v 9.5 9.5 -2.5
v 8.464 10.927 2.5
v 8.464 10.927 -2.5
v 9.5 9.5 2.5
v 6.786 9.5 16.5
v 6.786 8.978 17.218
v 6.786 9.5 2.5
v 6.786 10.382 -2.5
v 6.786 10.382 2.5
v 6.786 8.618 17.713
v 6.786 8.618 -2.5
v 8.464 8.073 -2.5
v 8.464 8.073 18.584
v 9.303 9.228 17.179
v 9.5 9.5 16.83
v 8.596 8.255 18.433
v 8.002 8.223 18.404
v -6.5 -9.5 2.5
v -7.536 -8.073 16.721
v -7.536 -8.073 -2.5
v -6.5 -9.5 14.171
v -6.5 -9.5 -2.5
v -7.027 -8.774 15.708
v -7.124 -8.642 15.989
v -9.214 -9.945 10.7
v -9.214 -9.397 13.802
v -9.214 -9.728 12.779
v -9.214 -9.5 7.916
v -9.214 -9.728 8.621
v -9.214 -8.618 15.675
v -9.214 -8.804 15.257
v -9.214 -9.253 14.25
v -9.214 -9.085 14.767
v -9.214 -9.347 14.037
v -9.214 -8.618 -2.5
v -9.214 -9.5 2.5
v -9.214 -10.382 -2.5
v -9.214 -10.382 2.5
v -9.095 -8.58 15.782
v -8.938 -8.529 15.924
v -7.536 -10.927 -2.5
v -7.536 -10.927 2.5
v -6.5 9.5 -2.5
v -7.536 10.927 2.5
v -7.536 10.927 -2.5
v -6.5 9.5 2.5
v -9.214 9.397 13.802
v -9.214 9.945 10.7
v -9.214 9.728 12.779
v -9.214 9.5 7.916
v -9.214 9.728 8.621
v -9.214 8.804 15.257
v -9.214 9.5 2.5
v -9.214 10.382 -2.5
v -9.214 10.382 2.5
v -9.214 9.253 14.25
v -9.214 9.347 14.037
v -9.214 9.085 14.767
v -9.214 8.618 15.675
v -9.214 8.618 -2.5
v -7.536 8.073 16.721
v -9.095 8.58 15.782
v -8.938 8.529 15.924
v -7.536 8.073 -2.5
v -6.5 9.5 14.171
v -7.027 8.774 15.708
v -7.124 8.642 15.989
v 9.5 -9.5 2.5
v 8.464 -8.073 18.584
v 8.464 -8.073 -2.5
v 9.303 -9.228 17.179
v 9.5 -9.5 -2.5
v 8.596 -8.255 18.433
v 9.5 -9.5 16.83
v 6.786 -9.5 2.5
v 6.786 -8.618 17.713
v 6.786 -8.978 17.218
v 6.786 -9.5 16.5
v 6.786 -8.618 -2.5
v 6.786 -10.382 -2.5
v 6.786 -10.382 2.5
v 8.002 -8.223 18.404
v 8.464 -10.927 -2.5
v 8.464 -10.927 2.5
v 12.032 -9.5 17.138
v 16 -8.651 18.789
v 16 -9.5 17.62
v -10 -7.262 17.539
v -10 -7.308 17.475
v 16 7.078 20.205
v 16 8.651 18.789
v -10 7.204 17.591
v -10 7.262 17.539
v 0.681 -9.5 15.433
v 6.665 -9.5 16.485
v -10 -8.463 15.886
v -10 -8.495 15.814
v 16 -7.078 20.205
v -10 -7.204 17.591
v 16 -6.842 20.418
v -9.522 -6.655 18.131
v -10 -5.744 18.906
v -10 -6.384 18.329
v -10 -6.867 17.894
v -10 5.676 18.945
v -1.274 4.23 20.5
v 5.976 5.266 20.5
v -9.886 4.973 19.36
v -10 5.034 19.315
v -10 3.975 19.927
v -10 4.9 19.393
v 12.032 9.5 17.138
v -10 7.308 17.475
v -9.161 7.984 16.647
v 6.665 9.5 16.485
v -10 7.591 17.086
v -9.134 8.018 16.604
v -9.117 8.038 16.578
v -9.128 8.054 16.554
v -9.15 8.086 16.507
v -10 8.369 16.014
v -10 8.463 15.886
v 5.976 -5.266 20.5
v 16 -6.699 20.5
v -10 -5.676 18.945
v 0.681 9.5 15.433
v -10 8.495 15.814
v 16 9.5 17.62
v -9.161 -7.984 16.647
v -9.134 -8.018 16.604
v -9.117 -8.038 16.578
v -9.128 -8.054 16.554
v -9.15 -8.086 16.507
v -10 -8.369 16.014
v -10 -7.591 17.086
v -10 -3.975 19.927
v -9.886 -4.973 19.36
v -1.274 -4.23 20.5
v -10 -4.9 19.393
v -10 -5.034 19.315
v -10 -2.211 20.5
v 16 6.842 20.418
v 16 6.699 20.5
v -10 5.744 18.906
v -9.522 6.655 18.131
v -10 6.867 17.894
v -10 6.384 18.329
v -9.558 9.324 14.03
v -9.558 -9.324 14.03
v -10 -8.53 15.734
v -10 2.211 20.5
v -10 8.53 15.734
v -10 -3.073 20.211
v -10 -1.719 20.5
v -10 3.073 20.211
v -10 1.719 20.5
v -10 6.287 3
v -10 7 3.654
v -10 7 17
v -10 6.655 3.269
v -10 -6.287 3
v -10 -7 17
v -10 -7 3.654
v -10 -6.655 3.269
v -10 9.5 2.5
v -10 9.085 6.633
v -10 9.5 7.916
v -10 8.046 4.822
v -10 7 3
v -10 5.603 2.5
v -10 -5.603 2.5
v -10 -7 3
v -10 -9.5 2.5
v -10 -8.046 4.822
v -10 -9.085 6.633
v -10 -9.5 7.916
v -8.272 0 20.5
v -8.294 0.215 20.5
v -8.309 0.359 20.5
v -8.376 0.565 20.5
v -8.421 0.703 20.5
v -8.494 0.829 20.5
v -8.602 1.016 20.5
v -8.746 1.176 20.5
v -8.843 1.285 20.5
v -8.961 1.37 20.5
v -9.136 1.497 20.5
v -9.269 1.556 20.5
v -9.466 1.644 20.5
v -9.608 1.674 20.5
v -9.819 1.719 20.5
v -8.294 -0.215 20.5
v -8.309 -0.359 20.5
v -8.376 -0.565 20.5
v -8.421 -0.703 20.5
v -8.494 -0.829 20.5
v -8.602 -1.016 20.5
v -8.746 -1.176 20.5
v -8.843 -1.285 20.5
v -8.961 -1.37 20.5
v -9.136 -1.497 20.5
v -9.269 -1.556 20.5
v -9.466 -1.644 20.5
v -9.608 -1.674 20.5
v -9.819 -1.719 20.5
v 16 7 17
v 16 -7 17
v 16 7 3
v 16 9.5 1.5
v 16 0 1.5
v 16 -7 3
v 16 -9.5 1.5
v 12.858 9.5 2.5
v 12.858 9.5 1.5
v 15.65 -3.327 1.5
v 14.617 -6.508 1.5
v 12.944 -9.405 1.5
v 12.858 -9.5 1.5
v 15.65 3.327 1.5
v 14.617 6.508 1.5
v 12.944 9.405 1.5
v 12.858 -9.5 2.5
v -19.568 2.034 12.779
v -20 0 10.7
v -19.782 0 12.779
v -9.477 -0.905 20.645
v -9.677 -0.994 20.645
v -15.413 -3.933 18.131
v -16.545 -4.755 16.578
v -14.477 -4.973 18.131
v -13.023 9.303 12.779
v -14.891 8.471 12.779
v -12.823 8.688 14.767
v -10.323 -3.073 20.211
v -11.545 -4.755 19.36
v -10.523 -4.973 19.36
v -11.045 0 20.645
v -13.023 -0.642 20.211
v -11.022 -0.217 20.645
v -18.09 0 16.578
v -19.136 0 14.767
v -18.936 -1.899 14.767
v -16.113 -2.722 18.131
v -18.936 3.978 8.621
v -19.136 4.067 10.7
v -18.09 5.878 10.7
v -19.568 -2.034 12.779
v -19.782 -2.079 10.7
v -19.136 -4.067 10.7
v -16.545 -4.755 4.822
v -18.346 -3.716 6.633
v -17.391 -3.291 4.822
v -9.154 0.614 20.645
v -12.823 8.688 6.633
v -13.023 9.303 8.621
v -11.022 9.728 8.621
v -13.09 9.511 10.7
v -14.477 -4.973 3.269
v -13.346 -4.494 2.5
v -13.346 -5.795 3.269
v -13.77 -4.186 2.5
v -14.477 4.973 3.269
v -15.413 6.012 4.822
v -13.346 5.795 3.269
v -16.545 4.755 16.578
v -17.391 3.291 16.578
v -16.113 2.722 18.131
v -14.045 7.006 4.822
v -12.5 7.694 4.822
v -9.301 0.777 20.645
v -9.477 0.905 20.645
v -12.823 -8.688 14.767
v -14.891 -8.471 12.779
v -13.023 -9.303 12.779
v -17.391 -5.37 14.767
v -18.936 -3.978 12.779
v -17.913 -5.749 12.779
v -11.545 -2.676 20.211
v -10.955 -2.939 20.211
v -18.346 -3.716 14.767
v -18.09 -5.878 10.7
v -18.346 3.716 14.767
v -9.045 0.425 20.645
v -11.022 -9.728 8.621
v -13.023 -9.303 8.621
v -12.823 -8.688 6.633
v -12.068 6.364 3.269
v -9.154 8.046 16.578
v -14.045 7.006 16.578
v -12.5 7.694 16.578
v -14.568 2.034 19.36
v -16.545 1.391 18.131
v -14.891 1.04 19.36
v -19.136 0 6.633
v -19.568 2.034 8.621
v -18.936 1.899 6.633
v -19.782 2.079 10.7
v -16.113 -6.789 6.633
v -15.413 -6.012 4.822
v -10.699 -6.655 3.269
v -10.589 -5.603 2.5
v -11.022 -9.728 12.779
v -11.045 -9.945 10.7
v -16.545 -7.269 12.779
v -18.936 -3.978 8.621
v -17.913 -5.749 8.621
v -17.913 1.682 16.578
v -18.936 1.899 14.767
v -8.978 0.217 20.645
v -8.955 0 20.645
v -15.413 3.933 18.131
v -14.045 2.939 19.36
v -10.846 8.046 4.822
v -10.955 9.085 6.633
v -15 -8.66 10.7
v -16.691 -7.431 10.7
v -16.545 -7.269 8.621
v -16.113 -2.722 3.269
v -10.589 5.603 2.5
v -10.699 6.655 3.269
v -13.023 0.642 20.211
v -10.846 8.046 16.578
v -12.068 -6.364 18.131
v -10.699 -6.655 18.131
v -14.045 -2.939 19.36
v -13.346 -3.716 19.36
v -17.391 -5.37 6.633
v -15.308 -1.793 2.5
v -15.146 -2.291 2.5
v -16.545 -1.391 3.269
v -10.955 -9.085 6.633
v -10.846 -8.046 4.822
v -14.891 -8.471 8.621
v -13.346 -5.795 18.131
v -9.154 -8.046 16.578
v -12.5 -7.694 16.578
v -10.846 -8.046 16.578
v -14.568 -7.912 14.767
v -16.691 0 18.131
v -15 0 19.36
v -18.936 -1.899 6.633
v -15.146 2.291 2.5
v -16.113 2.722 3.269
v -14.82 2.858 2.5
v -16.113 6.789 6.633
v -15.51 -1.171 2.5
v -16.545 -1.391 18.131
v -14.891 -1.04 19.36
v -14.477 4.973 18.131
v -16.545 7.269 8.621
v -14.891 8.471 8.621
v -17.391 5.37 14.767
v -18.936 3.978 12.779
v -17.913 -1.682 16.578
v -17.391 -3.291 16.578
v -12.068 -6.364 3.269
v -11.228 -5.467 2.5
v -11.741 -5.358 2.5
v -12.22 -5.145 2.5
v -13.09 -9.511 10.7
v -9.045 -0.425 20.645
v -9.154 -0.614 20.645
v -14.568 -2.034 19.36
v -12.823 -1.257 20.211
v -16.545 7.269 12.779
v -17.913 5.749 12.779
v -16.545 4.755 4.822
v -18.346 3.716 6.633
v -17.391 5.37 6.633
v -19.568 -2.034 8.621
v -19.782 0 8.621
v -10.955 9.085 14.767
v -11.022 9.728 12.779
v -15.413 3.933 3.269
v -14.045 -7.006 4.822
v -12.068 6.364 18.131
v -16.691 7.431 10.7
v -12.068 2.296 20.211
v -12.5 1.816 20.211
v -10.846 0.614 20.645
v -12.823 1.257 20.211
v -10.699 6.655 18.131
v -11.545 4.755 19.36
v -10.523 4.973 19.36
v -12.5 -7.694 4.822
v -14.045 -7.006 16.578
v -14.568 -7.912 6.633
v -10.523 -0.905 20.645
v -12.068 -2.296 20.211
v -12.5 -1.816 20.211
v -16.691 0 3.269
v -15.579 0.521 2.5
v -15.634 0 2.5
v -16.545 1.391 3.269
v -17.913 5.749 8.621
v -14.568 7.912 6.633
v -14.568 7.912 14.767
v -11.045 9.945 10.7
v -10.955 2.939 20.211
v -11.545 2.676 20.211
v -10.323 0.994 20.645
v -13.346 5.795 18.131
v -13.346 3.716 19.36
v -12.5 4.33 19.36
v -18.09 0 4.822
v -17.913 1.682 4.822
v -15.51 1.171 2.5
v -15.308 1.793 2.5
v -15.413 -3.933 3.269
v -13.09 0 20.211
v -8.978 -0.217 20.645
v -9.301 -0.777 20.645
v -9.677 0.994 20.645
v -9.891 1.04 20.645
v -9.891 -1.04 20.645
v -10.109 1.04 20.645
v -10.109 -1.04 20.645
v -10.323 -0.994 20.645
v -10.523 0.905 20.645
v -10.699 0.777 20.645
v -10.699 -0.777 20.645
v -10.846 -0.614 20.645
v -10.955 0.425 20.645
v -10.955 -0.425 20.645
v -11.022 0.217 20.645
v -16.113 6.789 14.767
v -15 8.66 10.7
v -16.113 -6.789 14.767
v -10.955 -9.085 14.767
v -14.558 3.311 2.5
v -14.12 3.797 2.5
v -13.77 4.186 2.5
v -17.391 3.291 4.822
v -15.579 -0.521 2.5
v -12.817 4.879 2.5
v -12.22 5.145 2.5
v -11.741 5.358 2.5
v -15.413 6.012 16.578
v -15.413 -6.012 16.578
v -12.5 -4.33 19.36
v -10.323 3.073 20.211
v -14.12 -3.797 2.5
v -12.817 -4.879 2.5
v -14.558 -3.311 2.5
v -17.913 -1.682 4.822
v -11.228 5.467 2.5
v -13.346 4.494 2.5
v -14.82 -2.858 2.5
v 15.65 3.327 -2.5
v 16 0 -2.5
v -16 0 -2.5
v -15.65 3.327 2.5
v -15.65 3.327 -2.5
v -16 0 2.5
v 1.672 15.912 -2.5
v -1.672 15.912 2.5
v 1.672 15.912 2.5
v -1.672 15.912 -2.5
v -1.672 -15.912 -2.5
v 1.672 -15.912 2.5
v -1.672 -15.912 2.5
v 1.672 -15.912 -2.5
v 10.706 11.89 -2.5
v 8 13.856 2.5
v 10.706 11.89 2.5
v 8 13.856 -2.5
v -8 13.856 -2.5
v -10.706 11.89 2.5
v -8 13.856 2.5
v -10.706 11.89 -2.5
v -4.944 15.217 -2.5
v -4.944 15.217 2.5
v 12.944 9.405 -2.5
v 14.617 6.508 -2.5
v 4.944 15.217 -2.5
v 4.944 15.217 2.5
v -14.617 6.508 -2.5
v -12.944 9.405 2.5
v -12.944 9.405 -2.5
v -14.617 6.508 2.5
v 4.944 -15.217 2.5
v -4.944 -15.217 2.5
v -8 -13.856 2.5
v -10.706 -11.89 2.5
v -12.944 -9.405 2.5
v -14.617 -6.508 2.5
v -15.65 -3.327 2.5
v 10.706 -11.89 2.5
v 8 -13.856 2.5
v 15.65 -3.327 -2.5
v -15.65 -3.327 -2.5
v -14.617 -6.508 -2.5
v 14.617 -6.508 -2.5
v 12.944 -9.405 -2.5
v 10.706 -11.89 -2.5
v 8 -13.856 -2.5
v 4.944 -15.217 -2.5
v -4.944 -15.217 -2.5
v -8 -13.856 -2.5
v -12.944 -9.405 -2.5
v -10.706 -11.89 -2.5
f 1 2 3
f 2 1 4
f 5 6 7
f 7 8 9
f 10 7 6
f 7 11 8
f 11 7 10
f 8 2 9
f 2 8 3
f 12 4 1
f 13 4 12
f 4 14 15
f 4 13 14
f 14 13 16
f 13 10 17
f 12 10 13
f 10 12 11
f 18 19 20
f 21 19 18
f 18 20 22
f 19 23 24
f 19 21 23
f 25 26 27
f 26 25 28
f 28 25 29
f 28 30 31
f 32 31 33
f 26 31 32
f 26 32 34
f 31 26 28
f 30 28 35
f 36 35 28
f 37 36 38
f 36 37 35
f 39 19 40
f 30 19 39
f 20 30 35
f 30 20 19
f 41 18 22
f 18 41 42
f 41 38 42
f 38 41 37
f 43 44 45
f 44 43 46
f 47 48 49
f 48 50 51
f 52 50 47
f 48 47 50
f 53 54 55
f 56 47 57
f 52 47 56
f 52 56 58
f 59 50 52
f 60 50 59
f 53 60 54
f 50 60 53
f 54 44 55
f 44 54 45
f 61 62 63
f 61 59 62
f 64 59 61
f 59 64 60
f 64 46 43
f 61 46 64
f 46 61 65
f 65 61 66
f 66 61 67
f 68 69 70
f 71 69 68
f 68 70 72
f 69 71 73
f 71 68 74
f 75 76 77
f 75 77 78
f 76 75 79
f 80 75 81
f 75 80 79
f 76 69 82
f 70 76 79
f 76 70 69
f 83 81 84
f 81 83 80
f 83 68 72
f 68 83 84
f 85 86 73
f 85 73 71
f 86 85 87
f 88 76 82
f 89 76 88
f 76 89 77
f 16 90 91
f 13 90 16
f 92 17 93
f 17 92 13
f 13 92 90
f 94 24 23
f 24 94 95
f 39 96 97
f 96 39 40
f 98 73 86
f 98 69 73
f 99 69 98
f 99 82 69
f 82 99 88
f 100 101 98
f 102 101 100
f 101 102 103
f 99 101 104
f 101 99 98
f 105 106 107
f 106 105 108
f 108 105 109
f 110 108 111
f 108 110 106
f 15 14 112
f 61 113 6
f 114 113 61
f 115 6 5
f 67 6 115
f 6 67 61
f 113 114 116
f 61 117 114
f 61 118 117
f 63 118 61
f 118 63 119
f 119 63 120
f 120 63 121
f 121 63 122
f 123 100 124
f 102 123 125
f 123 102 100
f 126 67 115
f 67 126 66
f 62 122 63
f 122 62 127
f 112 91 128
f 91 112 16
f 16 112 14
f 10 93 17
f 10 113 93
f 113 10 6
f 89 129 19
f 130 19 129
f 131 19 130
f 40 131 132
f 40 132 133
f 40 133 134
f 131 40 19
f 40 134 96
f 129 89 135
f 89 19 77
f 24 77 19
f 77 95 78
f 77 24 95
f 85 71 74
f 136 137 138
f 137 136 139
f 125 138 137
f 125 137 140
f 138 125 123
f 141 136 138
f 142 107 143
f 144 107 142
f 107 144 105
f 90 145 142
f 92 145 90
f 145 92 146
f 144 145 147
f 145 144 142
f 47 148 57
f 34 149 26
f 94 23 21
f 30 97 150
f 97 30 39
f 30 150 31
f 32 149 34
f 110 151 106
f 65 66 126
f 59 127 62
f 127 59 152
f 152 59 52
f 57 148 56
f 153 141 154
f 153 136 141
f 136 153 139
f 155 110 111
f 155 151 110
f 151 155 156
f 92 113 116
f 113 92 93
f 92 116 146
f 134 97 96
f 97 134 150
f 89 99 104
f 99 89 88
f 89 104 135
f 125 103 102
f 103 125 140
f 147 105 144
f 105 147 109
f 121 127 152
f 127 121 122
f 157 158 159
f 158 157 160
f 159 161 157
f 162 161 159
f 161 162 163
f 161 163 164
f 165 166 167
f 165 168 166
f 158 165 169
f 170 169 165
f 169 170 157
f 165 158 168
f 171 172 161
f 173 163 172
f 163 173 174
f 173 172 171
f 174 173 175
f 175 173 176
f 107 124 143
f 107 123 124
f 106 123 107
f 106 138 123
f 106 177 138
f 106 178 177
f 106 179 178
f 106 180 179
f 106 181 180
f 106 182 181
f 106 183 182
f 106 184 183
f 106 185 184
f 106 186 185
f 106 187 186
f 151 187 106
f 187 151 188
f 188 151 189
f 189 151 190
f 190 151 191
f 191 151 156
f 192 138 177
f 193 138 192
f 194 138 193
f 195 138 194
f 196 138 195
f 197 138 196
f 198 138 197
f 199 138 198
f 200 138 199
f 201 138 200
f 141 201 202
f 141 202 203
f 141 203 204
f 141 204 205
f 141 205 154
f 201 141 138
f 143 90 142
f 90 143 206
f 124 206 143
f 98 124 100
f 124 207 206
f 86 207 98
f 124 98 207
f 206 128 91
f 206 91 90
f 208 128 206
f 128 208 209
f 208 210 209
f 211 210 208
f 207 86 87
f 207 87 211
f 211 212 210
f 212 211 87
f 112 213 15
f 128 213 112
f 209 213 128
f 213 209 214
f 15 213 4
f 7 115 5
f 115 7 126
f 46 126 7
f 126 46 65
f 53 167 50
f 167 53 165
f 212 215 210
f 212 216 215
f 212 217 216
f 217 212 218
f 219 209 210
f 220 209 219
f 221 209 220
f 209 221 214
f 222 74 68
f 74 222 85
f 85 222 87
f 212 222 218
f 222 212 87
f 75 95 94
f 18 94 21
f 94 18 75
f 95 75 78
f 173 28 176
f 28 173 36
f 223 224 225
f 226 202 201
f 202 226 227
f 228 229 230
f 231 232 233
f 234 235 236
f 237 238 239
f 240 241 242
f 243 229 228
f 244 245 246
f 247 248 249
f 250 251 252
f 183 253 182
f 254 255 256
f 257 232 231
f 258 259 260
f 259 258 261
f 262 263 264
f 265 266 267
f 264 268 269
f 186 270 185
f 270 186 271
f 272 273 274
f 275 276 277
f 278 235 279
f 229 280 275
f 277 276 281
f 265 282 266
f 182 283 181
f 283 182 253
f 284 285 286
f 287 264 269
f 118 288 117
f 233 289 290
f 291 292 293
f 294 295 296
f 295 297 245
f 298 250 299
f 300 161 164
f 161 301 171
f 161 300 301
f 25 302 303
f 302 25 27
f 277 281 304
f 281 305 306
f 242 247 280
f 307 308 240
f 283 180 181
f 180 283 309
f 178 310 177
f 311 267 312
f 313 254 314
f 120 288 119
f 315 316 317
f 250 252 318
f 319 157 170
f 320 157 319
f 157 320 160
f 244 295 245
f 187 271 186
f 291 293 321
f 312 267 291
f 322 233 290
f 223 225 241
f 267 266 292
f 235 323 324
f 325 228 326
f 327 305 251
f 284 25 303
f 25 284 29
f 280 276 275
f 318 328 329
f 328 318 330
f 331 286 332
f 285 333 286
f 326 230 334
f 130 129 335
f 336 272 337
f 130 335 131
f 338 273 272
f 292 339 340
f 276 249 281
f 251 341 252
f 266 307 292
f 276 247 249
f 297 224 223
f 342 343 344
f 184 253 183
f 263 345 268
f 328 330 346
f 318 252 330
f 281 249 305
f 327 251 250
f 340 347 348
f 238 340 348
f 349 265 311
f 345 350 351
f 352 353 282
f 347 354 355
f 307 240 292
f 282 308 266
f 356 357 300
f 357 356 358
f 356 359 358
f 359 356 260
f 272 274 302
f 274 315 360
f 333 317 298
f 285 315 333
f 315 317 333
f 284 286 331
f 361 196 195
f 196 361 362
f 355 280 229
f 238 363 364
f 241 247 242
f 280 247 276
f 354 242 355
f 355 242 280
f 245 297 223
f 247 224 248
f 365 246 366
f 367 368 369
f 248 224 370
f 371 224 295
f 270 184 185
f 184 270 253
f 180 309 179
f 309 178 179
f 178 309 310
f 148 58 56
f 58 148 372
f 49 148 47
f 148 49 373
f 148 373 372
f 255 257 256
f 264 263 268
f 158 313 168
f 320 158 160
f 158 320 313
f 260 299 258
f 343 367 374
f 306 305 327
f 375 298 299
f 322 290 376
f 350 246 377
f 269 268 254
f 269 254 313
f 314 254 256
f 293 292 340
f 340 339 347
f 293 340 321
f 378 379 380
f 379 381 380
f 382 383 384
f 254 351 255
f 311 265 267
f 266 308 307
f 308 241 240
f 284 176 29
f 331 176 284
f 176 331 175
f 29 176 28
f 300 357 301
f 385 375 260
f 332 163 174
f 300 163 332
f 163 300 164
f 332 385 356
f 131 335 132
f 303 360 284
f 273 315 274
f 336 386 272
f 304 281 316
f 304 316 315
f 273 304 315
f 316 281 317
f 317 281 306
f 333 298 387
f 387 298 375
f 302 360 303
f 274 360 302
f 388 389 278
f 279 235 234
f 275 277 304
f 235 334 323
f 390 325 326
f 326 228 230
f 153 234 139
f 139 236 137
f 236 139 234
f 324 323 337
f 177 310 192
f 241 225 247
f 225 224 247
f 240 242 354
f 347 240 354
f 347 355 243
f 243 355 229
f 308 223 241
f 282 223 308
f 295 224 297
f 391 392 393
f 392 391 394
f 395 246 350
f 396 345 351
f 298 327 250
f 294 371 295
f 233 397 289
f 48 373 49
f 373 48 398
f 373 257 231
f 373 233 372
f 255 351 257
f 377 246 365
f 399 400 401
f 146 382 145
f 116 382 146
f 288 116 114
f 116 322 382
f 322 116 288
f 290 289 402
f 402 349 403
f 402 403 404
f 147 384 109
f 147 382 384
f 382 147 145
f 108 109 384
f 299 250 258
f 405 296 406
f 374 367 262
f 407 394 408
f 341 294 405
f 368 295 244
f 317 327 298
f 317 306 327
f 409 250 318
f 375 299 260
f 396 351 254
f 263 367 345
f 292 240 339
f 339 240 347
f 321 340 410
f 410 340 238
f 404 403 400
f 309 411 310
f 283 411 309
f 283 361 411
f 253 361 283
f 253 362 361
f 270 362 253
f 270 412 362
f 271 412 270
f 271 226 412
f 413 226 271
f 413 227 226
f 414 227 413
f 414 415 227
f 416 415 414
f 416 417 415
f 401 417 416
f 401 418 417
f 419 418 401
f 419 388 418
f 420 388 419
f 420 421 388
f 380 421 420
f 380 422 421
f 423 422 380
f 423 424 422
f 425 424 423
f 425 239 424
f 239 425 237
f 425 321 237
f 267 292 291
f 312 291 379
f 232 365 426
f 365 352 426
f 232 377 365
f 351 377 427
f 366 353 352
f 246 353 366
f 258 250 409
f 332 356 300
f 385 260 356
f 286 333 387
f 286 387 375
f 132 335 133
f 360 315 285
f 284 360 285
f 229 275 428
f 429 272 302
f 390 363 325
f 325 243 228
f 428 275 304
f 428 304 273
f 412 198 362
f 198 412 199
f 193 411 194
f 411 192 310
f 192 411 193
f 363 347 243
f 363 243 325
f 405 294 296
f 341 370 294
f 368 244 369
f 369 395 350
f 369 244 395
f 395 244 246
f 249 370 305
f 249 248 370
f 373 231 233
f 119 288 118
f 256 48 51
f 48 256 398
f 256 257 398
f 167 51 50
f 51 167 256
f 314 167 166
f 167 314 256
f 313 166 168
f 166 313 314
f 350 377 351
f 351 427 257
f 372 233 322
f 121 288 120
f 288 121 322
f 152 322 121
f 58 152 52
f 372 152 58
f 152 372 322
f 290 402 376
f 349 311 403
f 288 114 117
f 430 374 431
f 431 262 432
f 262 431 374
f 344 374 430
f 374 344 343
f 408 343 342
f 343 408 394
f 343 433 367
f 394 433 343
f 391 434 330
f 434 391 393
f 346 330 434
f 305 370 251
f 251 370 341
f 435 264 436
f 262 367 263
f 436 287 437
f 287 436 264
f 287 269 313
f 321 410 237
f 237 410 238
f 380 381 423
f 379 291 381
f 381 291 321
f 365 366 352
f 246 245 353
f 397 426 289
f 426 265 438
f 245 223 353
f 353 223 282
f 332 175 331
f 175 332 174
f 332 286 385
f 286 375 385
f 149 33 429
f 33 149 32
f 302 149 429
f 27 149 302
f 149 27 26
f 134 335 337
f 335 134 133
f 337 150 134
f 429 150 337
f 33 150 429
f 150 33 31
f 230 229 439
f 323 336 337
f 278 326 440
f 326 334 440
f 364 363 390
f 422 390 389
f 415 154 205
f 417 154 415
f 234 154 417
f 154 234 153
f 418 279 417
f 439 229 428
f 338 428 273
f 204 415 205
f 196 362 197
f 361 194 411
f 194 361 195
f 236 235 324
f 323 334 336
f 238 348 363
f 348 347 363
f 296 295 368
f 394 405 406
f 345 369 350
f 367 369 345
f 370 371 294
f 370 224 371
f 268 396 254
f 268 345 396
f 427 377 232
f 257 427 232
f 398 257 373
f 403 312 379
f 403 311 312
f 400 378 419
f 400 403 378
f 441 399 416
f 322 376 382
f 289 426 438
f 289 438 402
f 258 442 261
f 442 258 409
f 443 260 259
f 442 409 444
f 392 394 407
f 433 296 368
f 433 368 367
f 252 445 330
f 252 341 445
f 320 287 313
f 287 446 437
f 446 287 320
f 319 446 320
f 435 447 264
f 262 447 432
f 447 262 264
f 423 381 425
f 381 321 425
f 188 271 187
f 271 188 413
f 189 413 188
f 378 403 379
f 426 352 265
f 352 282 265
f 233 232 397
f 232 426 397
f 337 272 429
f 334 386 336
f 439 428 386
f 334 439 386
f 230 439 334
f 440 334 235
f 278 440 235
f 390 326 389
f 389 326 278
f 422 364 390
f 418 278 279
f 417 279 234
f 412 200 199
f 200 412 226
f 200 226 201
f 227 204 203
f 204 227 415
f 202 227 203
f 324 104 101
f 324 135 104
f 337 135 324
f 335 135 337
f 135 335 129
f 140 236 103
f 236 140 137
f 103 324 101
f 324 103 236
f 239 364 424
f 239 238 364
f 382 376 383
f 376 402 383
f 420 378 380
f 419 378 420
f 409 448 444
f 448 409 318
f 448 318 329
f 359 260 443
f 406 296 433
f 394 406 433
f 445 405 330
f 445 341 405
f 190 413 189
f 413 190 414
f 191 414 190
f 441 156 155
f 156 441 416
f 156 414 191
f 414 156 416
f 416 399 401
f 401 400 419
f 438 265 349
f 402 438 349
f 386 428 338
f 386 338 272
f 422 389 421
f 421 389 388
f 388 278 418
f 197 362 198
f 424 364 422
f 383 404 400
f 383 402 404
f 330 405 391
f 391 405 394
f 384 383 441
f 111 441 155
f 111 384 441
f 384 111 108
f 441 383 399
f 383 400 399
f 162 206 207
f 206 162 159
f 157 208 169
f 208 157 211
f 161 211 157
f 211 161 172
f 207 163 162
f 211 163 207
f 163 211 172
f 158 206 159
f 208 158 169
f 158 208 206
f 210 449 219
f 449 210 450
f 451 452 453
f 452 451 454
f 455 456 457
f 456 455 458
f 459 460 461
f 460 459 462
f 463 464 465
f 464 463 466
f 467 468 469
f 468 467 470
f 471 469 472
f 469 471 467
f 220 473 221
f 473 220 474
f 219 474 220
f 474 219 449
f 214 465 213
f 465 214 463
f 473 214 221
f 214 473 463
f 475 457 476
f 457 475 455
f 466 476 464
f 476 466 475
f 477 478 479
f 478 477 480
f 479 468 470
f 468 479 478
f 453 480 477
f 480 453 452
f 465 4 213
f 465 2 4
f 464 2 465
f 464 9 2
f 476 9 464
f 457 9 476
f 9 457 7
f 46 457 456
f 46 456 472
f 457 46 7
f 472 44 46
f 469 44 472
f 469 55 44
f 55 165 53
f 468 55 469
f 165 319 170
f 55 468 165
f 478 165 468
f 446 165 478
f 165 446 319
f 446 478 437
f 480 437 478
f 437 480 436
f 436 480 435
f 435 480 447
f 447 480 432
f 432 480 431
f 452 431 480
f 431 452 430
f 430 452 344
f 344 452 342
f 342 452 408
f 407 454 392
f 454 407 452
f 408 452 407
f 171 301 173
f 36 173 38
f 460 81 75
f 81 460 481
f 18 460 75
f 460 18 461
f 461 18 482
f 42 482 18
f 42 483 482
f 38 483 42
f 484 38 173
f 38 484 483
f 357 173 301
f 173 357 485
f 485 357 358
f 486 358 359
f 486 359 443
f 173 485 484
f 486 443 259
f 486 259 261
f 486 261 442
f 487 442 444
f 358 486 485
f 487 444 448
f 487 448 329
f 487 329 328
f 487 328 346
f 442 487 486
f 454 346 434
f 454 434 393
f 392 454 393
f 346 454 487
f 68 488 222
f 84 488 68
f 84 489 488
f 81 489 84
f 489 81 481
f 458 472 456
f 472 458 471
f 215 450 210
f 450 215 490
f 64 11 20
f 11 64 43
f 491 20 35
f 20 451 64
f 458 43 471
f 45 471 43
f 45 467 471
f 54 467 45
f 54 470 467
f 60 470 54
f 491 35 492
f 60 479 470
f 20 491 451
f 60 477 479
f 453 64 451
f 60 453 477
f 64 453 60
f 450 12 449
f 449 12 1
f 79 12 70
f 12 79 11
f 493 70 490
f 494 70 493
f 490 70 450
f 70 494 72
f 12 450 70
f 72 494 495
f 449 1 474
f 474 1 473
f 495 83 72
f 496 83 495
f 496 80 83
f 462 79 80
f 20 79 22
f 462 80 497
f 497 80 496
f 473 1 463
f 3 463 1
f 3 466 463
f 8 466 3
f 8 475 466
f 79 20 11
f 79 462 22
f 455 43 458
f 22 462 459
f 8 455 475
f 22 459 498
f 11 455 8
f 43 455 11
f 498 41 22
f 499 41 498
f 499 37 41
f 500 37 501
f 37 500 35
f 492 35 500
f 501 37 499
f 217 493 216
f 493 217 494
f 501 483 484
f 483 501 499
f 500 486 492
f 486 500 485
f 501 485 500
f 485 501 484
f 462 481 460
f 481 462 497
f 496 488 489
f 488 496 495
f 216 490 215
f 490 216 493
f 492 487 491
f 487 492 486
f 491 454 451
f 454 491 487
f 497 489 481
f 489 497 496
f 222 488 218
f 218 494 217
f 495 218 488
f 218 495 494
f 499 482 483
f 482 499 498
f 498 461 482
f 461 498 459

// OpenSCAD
mb_x = 16;
mb_y = 19;
ss = 3;




difference() {
    union() {
        cylinder(5,16,16,true);
        difference() {
            union() {
                difference() {
                    translate([3,0,11]) cube([26,19,19],true);
                    difference() {
                        translate([5,0,11]) cube([32,20,20],true);
                        translate([5,0,11]) rotate([0,90,0]) cylinder(32,9.7,12,true);
                        translate([5,0,0]) cube([40,20,20],true);
                    }
                }
                translate([-10,0,10.7]) sphere(10);
            }
            translate ([20,0,10]) cube([60,14,14],true);
        }
    }
    
    motor_screws(50);

}


module motor_screws(sl=10) {
    translate([mb_x/2,mb_y/2,0]) cylinder(sl,ss/2,ss/2,true);
    translate([-mb_x/2,-mb_y/2,0]) cylinder(sl,ss/2,ss/2,true);
    translate([-mb_x/2,mb_y/2,0]) cylinder(sl,ss/2,ss/2,true);
    translate([mb_x/2,-mb_y/2,0]) cylinder(sl,ss/2,ss/2,true);
}
